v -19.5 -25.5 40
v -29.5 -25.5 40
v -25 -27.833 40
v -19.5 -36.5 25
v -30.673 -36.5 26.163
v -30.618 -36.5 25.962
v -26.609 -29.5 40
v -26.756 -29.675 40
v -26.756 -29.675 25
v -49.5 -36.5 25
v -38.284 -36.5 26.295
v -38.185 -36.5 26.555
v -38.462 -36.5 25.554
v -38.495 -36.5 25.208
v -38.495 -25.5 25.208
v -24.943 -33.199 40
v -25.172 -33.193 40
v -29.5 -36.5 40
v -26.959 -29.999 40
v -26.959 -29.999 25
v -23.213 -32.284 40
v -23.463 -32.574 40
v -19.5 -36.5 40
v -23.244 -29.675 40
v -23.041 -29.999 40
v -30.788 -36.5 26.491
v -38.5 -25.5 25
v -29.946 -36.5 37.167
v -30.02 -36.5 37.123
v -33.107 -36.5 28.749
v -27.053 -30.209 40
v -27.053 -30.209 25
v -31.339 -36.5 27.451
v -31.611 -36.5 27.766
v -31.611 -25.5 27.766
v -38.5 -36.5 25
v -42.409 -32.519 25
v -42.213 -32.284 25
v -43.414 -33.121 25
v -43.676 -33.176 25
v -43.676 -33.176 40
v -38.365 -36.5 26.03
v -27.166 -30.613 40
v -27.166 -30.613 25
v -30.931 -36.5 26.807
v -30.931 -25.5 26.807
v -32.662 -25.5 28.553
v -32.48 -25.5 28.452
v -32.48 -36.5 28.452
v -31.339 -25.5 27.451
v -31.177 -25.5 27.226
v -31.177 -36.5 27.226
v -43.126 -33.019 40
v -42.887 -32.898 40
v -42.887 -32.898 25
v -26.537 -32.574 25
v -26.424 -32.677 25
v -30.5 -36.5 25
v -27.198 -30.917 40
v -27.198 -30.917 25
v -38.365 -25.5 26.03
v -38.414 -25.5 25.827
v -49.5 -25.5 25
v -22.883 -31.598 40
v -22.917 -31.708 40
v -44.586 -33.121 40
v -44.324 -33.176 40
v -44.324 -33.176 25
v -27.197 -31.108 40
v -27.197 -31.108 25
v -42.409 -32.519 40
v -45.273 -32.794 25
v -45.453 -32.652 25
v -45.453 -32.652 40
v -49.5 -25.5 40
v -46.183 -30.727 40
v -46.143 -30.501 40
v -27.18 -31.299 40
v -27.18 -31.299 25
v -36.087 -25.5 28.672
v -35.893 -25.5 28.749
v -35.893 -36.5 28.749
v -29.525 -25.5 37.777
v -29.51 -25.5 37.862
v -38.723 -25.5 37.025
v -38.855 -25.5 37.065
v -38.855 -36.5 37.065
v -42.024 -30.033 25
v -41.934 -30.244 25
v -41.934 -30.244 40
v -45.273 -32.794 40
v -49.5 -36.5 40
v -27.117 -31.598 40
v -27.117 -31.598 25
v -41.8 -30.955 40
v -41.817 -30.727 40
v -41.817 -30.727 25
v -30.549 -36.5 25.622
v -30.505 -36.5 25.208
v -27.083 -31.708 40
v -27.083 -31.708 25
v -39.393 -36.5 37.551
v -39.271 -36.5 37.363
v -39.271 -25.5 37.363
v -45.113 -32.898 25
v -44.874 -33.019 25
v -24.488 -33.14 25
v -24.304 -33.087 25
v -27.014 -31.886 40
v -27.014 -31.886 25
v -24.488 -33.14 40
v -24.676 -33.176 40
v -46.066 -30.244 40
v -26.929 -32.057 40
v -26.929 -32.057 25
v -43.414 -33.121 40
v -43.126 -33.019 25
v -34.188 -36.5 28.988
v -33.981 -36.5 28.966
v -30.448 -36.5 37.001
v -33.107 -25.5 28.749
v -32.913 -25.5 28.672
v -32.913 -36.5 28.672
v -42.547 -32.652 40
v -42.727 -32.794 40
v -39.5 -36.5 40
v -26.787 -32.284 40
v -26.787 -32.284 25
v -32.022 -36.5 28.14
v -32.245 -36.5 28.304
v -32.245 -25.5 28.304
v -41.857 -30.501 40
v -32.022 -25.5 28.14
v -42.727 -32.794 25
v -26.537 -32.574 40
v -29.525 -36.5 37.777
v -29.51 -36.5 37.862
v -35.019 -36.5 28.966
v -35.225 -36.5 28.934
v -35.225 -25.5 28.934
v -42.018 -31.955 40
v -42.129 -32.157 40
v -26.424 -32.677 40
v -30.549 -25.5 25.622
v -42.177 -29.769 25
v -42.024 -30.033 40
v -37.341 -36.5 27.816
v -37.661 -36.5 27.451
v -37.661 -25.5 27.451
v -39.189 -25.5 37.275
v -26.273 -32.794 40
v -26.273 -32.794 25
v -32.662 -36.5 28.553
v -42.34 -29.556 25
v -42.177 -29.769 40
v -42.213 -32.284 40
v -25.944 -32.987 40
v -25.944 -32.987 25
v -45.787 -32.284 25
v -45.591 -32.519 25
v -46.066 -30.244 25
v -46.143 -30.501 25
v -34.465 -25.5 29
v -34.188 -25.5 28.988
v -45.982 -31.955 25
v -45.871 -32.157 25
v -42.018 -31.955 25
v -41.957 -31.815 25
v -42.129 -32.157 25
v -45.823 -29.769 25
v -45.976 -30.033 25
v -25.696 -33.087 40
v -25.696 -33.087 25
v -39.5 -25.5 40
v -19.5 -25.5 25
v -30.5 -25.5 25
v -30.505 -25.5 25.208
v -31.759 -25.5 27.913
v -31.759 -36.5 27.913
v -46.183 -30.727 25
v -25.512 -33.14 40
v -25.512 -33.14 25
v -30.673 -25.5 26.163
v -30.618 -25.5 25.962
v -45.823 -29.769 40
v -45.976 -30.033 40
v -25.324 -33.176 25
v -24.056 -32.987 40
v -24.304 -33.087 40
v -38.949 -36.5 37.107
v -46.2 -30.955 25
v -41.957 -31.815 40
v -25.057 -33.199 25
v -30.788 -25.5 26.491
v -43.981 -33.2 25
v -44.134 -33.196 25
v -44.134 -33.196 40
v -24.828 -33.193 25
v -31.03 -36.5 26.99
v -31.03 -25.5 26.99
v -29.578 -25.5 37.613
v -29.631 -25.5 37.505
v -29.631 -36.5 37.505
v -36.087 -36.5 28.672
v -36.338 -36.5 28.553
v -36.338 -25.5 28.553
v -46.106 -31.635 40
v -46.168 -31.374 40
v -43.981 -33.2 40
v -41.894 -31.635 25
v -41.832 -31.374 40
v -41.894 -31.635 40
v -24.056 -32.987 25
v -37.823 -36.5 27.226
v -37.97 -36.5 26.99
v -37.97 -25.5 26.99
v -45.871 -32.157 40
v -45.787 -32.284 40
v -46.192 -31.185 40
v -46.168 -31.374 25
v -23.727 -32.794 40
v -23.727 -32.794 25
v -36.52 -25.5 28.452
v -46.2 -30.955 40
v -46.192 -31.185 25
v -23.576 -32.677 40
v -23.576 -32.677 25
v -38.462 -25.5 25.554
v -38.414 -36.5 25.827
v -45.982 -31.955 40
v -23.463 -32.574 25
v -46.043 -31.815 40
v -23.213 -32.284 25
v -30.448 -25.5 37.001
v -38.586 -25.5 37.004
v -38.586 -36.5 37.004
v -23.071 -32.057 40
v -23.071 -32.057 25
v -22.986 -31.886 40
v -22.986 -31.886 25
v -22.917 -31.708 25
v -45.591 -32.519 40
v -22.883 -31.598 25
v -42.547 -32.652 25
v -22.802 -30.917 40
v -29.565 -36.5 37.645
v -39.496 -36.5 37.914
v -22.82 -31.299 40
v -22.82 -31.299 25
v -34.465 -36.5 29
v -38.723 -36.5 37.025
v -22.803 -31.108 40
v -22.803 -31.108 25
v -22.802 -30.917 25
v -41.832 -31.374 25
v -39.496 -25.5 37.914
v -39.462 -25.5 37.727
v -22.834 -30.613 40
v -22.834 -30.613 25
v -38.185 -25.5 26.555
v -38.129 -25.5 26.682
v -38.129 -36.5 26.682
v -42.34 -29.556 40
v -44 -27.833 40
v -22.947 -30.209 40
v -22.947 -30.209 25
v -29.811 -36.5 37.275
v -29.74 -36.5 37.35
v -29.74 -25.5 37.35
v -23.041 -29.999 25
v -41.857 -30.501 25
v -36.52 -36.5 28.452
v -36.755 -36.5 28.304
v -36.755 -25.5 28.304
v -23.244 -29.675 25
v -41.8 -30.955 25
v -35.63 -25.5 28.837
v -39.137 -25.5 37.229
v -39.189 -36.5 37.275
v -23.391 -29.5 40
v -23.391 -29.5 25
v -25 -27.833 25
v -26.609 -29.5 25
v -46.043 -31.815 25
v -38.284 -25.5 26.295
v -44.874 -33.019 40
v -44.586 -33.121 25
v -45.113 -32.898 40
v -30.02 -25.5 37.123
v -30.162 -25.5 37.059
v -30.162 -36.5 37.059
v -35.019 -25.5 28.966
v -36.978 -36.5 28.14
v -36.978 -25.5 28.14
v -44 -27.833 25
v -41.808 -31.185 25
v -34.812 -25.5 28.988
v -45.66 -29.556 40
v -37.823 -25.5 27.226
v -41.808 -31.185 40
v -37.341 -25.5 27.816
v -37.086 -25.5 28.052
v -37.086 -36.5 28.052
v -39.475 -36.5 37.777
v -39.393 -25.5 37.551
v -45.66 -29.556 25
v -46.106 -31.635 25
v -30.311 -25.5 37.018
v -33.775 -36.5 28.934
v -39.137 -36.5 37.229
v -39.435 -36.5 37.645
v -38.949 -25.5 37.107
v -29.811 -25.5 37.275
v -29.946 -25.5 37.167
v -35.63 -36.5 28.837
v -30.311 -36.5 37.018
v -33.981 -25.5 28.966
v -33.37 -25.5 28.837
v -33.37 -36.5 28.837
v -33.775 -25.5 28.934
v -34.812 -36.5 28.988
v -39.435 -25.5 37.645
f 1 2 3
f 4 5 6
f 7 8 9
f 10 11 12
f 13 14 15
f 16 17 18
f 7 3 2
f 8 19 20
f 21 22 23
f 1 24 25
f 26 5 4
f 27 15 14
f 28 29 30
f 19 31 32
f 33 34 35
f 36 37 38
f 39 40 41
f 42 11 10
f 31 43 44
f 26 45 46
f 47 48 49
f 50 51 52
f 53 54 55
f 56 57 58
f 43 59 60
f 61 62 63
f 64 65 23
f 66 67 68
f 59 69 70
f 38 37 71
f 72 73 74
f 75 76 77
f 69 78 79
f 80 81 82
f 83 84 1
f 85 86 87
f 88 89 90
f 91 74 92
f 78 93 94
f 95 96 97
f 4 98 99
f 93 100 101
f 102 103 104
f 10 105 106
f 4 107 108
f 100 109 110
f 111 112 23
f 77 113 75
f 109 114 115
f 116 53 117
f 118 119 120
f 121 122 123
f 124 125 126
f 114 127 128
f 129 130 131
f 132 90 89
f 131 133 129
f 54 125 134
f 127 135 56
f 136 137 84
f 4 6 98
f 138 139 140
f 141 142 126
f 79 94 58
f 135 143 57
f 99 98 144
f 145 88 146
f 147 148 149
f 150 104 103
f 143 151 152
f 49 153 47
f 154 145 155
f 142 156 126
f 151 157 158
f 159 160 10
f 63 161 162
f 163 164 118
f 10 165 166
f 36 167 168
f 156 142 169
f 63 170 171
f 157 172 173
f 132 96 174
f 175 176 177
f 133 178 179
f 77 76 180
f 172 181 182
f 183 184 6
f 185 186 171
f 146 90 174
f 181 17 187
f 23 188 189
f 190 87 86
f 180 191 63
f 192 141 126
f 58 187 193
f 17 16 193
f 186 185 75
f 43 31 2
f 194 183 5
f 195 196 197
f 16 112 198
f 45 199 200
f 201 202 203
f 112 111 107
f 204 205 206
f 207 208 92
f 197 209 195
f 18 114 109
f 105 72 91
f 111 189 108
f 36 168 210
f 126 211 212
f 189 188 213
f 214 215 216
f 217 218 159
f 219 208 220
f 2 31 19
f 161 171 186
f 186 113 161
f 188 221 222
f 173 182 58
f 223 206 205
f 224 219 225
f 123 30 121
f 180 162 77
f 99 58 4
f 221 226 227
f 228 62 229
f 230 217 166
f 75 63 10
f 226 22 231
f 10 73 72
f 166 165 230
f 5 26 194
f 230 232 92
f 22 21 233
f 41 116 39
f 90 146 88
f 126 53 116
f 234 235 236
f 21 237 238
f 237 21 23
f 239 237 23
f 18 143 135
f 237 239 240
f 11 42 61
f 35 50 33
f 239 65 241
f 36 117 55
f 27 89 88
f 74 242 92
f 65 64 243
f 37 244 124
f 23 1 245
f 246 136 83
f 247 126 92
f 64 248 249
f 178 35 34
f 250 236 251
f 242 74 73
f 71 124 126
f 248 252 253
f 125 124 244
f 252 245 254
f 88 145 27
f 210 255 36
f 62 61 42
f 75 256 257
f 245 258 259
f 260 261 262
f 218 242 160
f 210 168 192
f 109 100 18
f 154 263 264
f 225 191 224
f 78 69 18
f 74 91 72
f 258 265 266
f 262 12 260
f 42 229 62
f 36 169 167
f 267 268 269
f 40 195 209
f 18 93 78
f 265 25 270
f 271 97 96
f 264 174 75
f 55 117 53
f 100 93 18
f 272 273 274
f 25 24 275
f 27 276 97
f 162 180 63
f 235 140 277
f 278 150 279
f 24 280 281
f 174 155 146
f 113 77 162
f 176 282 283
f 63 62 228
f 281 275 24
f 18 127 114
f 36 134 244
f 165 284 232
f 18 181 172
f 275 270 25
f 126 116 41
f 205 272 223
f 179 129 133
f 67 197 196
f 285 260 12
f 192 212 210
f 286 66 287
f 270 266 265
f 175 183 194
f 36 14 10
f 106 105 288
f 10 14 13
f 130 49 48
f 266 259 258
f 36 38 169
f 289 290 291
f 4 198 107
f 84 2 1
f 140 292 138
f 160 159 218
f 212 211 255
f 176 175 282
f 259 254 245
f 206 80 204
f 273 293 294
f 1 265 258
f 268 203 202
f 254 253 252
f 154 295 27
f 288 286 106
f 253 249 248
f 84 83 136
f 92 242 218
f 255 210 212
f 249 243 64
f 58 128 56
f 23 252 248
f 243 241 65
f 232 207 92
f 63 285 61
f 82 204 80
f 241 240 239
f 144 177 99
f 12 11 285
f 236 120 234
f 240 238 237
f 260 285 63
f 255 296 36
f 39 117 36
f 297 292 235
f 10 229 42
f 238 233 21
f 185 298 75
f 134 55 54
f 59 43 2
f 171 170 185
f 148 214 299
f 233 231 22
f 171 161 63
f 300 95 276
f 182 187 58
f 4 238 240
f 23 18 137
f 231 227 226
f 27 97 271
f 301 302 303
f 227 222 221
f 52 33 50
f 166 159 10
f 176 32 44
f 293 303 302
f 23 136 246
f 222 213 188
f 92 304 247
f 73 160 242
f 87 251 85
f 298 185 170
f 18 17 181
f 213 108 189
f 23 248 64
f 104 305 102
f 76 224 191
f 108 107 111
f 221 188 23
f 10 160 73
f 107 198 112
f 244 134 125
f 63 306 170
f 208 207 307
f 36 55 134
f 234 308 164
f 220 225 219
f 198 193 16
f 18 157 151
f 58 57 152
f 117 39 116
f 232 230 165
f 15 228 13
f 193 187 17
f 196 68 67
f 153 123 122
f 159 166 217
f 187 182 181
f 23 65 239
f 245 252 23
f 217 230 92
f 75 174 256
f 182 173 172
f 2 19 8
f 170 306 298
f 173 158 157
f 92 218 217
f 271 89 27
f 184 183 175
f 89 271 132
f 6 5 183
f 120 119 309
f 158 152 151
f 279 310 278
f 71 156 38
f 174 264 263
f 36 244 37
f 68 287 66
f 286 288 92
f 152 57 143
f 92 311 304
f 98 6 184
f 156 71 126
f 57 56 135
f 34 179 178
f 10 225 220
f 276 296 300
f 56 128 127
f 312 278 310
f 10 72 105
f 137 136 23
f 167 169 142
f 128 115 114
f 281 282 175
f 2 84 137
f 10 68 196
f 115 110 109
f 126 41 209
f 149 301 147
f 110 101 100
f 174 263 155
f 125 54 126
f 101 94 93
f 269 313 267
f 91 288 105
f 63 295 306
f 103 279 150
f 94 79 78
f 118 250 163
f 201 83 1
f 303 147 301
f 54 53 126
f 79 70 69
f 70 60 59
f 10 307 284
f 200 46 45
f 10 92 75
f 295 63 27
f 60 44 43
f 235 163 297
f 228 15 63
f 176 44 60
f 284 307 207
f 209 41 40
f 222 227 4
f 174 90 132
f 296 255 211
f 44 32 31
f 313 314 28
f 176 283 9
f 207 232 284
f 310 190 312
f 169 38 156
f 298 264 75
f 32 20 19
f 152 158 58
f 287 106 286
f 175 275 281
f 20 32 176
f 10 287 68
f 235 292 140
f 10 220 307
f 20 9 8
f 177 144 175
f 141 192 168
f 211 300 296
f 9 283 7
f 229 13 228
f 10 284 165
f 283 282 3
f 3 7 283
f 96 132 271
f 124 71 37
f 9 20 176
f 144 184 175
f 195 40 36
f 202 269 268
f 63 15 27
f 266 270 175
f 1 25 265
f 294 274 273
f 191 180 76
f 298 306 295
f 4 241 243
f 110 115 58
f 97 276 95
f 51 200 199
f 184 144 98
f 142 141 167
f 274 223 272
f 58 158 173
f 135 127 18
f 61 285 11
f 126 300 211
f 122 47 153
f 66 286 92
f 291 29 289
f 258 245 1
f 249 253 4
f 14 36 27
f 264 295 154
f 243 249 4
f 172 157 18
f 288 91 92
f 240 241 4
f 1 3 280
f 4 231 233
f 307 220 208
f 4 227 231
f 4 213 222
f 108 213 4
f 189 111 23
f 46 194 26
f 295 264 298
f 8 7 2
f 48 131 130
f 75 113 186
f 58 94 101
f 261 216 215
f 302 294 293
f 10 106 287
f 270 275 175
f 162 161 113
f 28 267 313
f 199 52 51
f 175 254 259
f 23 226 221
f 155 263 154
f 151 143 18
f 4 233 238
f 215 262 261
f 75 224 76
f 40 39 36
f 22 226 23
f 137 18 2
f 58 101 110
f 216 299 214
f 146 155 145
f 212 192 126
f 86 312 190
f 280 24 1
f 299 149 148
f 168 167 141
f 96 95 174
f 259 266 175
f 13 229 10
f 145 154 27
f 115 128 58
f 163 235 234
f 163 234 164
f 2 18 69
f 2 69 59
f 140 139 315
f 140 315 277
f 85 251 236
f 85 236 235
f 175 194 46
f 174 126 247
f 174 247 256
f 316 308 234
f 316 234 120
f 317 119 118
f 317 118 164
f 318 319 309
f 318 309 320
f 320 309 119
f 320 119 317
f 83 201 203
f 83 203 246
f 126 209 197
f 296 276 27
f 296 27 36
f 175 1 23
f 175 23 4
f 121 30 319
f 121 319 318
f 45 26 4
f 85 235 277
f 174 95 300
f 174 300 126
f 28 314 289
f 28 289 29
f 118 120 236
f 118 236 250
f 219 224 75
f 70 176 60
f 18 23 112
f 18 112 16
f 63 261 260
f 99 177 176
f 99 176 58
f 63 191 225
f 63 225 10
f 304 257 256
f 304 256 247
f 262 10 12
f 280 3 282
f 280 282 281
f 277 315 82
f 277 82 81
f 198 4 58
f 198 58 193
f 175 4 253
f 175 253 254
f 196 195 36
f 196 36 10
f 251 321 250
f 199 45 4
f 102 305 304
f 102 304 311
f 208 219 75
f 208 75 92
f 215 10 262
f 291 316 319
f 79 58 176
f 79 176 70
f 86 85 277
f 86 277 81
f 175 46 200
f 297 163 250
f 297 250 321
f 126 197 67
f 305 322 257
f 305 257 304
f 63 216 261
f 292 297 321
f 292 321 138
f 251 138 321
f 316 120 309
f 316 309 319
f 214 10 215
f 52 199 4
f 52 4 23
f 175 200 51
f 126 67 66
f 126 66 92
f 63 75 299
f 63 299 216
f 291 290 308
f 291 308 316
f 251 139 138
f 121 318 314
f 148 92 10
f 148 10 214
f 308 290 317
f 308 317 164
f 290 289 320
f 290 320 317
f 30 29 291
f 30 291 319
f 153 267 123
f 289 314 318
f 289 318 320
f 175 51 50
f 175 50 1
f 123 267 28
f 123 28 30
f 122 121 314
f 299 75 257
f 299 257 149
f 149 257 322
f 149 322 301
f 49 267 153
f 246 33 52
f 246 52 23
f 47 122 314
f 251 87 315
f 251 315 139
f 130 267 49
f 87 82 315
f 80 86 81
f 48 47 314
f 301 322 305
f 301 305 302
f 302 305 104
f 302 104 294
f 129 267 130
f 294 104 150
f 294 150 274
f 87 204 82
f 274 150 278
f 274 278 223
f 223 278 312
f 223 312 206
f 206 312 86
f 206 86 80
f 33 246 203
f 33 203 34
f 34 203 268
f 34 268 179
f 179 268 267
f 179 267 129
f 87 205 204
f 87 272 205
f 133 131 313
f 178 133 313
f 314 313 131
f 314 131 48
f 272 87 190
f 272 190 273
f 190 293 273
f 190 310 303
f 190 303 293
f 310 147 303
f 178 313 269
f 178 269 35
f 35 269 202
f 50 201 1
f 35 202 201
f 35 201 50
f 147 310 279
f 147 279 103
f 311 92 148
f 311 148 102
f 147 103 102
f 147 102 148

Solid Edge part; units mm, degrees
sketch "Sketch1" plane through (0, 0, 25) normal (0, 0, 1) x (1, 0, 0)
  line L0 (-49.5, -36.5) -> (-19.5, -36.5)
  line L1 (-19.5, 6.5) -> (-19.5, -36.5)
  line L2 (-19.5, 6.5) -> (-49.5, 6.5)
  line L3 (-49.5, 6.5) -> (-49.5, -36.5)
  circle A0 centre (-25, -31) radius 2.2
  circle A1 centre (-44, 1) radius 2.2
  circle A2 centre (-25, 1) radius 2.2
  circle A3 centre (-44, -31) radius 2.2
extrude "ExtrudedProtrusion_1" add sketch "Sketch1" along normal blind 15
sketch "Sketch2" plane through (-34.5, -36.5, 32.5) normal (0, -1, 0) x (0, 0, 1)
  circle A0 centre (-7.5, 0) radius 4
extrude "Cutout1" cut sketch "Sketch2" against normal through all
sketch "Sketch3" plane through (-34.5, -36.5, 32.5) normal (0, -1, 0) x (1, 0, 0)
  line L0 (-5, 7.5) -> (-5, 4.5)
  line L1 (-5, 4.5) -> (5, 4.5)
  line L2 (5, 7.5) -> (5, 4.5)
  dimension "D1" = 5
  dimension "D2" = 10
  dimension "D3" = 3
  dimension "D4" = 3
  dimension "D5" = 3
extrude "Cutout2" cut sketch "Sketch3" against normal through all material side at (-39.45, -36.5, 38.5)
sketch "Sketch4" plane through (-24.5, -15, 40) normal (0, 0, 1) x (0, 1, 0)
  line L0 (-10.5, 25) -> (-10.5, 12.5)
extrude "Cutout3" cut sketch "Sketch4" against normal through all material side at (-43.25, -25.45, 40)
fillet "Round_1" radius 1 2 edges at (-39.5, -31, 37) (-29.5, -31, 37)
sketch "Sketch5" plane through (-44.5, -31, 40) normal (0, 0, 1) x (1, 0, 0)
  line L0 (0.5, 0) -> (2.0825, 1.5282)
  line L1 (2.0825, 1.5282) -> (0.5, 3.167)
  line L2 (0.5, 3.167) -> (-1.0825, 1.5282)
  line L3 (-1.0825, 1.5282) -> (0.5, 0)
  line L4 (19.5, 0) -> (21.0825, 1.5282)
  line L5 (21.0825, 1.5282) -> (19.5, 3.167)
  line L6 (19.5, 3.167) -> (17.9175, 1.5282)
  line L7 (17.9175, 1.5282) -> (19.5, 0)
extrude "Cutout4" cut sketch "Sketch5" against normal through all
properties material "ABS Plastic, medium impact"
